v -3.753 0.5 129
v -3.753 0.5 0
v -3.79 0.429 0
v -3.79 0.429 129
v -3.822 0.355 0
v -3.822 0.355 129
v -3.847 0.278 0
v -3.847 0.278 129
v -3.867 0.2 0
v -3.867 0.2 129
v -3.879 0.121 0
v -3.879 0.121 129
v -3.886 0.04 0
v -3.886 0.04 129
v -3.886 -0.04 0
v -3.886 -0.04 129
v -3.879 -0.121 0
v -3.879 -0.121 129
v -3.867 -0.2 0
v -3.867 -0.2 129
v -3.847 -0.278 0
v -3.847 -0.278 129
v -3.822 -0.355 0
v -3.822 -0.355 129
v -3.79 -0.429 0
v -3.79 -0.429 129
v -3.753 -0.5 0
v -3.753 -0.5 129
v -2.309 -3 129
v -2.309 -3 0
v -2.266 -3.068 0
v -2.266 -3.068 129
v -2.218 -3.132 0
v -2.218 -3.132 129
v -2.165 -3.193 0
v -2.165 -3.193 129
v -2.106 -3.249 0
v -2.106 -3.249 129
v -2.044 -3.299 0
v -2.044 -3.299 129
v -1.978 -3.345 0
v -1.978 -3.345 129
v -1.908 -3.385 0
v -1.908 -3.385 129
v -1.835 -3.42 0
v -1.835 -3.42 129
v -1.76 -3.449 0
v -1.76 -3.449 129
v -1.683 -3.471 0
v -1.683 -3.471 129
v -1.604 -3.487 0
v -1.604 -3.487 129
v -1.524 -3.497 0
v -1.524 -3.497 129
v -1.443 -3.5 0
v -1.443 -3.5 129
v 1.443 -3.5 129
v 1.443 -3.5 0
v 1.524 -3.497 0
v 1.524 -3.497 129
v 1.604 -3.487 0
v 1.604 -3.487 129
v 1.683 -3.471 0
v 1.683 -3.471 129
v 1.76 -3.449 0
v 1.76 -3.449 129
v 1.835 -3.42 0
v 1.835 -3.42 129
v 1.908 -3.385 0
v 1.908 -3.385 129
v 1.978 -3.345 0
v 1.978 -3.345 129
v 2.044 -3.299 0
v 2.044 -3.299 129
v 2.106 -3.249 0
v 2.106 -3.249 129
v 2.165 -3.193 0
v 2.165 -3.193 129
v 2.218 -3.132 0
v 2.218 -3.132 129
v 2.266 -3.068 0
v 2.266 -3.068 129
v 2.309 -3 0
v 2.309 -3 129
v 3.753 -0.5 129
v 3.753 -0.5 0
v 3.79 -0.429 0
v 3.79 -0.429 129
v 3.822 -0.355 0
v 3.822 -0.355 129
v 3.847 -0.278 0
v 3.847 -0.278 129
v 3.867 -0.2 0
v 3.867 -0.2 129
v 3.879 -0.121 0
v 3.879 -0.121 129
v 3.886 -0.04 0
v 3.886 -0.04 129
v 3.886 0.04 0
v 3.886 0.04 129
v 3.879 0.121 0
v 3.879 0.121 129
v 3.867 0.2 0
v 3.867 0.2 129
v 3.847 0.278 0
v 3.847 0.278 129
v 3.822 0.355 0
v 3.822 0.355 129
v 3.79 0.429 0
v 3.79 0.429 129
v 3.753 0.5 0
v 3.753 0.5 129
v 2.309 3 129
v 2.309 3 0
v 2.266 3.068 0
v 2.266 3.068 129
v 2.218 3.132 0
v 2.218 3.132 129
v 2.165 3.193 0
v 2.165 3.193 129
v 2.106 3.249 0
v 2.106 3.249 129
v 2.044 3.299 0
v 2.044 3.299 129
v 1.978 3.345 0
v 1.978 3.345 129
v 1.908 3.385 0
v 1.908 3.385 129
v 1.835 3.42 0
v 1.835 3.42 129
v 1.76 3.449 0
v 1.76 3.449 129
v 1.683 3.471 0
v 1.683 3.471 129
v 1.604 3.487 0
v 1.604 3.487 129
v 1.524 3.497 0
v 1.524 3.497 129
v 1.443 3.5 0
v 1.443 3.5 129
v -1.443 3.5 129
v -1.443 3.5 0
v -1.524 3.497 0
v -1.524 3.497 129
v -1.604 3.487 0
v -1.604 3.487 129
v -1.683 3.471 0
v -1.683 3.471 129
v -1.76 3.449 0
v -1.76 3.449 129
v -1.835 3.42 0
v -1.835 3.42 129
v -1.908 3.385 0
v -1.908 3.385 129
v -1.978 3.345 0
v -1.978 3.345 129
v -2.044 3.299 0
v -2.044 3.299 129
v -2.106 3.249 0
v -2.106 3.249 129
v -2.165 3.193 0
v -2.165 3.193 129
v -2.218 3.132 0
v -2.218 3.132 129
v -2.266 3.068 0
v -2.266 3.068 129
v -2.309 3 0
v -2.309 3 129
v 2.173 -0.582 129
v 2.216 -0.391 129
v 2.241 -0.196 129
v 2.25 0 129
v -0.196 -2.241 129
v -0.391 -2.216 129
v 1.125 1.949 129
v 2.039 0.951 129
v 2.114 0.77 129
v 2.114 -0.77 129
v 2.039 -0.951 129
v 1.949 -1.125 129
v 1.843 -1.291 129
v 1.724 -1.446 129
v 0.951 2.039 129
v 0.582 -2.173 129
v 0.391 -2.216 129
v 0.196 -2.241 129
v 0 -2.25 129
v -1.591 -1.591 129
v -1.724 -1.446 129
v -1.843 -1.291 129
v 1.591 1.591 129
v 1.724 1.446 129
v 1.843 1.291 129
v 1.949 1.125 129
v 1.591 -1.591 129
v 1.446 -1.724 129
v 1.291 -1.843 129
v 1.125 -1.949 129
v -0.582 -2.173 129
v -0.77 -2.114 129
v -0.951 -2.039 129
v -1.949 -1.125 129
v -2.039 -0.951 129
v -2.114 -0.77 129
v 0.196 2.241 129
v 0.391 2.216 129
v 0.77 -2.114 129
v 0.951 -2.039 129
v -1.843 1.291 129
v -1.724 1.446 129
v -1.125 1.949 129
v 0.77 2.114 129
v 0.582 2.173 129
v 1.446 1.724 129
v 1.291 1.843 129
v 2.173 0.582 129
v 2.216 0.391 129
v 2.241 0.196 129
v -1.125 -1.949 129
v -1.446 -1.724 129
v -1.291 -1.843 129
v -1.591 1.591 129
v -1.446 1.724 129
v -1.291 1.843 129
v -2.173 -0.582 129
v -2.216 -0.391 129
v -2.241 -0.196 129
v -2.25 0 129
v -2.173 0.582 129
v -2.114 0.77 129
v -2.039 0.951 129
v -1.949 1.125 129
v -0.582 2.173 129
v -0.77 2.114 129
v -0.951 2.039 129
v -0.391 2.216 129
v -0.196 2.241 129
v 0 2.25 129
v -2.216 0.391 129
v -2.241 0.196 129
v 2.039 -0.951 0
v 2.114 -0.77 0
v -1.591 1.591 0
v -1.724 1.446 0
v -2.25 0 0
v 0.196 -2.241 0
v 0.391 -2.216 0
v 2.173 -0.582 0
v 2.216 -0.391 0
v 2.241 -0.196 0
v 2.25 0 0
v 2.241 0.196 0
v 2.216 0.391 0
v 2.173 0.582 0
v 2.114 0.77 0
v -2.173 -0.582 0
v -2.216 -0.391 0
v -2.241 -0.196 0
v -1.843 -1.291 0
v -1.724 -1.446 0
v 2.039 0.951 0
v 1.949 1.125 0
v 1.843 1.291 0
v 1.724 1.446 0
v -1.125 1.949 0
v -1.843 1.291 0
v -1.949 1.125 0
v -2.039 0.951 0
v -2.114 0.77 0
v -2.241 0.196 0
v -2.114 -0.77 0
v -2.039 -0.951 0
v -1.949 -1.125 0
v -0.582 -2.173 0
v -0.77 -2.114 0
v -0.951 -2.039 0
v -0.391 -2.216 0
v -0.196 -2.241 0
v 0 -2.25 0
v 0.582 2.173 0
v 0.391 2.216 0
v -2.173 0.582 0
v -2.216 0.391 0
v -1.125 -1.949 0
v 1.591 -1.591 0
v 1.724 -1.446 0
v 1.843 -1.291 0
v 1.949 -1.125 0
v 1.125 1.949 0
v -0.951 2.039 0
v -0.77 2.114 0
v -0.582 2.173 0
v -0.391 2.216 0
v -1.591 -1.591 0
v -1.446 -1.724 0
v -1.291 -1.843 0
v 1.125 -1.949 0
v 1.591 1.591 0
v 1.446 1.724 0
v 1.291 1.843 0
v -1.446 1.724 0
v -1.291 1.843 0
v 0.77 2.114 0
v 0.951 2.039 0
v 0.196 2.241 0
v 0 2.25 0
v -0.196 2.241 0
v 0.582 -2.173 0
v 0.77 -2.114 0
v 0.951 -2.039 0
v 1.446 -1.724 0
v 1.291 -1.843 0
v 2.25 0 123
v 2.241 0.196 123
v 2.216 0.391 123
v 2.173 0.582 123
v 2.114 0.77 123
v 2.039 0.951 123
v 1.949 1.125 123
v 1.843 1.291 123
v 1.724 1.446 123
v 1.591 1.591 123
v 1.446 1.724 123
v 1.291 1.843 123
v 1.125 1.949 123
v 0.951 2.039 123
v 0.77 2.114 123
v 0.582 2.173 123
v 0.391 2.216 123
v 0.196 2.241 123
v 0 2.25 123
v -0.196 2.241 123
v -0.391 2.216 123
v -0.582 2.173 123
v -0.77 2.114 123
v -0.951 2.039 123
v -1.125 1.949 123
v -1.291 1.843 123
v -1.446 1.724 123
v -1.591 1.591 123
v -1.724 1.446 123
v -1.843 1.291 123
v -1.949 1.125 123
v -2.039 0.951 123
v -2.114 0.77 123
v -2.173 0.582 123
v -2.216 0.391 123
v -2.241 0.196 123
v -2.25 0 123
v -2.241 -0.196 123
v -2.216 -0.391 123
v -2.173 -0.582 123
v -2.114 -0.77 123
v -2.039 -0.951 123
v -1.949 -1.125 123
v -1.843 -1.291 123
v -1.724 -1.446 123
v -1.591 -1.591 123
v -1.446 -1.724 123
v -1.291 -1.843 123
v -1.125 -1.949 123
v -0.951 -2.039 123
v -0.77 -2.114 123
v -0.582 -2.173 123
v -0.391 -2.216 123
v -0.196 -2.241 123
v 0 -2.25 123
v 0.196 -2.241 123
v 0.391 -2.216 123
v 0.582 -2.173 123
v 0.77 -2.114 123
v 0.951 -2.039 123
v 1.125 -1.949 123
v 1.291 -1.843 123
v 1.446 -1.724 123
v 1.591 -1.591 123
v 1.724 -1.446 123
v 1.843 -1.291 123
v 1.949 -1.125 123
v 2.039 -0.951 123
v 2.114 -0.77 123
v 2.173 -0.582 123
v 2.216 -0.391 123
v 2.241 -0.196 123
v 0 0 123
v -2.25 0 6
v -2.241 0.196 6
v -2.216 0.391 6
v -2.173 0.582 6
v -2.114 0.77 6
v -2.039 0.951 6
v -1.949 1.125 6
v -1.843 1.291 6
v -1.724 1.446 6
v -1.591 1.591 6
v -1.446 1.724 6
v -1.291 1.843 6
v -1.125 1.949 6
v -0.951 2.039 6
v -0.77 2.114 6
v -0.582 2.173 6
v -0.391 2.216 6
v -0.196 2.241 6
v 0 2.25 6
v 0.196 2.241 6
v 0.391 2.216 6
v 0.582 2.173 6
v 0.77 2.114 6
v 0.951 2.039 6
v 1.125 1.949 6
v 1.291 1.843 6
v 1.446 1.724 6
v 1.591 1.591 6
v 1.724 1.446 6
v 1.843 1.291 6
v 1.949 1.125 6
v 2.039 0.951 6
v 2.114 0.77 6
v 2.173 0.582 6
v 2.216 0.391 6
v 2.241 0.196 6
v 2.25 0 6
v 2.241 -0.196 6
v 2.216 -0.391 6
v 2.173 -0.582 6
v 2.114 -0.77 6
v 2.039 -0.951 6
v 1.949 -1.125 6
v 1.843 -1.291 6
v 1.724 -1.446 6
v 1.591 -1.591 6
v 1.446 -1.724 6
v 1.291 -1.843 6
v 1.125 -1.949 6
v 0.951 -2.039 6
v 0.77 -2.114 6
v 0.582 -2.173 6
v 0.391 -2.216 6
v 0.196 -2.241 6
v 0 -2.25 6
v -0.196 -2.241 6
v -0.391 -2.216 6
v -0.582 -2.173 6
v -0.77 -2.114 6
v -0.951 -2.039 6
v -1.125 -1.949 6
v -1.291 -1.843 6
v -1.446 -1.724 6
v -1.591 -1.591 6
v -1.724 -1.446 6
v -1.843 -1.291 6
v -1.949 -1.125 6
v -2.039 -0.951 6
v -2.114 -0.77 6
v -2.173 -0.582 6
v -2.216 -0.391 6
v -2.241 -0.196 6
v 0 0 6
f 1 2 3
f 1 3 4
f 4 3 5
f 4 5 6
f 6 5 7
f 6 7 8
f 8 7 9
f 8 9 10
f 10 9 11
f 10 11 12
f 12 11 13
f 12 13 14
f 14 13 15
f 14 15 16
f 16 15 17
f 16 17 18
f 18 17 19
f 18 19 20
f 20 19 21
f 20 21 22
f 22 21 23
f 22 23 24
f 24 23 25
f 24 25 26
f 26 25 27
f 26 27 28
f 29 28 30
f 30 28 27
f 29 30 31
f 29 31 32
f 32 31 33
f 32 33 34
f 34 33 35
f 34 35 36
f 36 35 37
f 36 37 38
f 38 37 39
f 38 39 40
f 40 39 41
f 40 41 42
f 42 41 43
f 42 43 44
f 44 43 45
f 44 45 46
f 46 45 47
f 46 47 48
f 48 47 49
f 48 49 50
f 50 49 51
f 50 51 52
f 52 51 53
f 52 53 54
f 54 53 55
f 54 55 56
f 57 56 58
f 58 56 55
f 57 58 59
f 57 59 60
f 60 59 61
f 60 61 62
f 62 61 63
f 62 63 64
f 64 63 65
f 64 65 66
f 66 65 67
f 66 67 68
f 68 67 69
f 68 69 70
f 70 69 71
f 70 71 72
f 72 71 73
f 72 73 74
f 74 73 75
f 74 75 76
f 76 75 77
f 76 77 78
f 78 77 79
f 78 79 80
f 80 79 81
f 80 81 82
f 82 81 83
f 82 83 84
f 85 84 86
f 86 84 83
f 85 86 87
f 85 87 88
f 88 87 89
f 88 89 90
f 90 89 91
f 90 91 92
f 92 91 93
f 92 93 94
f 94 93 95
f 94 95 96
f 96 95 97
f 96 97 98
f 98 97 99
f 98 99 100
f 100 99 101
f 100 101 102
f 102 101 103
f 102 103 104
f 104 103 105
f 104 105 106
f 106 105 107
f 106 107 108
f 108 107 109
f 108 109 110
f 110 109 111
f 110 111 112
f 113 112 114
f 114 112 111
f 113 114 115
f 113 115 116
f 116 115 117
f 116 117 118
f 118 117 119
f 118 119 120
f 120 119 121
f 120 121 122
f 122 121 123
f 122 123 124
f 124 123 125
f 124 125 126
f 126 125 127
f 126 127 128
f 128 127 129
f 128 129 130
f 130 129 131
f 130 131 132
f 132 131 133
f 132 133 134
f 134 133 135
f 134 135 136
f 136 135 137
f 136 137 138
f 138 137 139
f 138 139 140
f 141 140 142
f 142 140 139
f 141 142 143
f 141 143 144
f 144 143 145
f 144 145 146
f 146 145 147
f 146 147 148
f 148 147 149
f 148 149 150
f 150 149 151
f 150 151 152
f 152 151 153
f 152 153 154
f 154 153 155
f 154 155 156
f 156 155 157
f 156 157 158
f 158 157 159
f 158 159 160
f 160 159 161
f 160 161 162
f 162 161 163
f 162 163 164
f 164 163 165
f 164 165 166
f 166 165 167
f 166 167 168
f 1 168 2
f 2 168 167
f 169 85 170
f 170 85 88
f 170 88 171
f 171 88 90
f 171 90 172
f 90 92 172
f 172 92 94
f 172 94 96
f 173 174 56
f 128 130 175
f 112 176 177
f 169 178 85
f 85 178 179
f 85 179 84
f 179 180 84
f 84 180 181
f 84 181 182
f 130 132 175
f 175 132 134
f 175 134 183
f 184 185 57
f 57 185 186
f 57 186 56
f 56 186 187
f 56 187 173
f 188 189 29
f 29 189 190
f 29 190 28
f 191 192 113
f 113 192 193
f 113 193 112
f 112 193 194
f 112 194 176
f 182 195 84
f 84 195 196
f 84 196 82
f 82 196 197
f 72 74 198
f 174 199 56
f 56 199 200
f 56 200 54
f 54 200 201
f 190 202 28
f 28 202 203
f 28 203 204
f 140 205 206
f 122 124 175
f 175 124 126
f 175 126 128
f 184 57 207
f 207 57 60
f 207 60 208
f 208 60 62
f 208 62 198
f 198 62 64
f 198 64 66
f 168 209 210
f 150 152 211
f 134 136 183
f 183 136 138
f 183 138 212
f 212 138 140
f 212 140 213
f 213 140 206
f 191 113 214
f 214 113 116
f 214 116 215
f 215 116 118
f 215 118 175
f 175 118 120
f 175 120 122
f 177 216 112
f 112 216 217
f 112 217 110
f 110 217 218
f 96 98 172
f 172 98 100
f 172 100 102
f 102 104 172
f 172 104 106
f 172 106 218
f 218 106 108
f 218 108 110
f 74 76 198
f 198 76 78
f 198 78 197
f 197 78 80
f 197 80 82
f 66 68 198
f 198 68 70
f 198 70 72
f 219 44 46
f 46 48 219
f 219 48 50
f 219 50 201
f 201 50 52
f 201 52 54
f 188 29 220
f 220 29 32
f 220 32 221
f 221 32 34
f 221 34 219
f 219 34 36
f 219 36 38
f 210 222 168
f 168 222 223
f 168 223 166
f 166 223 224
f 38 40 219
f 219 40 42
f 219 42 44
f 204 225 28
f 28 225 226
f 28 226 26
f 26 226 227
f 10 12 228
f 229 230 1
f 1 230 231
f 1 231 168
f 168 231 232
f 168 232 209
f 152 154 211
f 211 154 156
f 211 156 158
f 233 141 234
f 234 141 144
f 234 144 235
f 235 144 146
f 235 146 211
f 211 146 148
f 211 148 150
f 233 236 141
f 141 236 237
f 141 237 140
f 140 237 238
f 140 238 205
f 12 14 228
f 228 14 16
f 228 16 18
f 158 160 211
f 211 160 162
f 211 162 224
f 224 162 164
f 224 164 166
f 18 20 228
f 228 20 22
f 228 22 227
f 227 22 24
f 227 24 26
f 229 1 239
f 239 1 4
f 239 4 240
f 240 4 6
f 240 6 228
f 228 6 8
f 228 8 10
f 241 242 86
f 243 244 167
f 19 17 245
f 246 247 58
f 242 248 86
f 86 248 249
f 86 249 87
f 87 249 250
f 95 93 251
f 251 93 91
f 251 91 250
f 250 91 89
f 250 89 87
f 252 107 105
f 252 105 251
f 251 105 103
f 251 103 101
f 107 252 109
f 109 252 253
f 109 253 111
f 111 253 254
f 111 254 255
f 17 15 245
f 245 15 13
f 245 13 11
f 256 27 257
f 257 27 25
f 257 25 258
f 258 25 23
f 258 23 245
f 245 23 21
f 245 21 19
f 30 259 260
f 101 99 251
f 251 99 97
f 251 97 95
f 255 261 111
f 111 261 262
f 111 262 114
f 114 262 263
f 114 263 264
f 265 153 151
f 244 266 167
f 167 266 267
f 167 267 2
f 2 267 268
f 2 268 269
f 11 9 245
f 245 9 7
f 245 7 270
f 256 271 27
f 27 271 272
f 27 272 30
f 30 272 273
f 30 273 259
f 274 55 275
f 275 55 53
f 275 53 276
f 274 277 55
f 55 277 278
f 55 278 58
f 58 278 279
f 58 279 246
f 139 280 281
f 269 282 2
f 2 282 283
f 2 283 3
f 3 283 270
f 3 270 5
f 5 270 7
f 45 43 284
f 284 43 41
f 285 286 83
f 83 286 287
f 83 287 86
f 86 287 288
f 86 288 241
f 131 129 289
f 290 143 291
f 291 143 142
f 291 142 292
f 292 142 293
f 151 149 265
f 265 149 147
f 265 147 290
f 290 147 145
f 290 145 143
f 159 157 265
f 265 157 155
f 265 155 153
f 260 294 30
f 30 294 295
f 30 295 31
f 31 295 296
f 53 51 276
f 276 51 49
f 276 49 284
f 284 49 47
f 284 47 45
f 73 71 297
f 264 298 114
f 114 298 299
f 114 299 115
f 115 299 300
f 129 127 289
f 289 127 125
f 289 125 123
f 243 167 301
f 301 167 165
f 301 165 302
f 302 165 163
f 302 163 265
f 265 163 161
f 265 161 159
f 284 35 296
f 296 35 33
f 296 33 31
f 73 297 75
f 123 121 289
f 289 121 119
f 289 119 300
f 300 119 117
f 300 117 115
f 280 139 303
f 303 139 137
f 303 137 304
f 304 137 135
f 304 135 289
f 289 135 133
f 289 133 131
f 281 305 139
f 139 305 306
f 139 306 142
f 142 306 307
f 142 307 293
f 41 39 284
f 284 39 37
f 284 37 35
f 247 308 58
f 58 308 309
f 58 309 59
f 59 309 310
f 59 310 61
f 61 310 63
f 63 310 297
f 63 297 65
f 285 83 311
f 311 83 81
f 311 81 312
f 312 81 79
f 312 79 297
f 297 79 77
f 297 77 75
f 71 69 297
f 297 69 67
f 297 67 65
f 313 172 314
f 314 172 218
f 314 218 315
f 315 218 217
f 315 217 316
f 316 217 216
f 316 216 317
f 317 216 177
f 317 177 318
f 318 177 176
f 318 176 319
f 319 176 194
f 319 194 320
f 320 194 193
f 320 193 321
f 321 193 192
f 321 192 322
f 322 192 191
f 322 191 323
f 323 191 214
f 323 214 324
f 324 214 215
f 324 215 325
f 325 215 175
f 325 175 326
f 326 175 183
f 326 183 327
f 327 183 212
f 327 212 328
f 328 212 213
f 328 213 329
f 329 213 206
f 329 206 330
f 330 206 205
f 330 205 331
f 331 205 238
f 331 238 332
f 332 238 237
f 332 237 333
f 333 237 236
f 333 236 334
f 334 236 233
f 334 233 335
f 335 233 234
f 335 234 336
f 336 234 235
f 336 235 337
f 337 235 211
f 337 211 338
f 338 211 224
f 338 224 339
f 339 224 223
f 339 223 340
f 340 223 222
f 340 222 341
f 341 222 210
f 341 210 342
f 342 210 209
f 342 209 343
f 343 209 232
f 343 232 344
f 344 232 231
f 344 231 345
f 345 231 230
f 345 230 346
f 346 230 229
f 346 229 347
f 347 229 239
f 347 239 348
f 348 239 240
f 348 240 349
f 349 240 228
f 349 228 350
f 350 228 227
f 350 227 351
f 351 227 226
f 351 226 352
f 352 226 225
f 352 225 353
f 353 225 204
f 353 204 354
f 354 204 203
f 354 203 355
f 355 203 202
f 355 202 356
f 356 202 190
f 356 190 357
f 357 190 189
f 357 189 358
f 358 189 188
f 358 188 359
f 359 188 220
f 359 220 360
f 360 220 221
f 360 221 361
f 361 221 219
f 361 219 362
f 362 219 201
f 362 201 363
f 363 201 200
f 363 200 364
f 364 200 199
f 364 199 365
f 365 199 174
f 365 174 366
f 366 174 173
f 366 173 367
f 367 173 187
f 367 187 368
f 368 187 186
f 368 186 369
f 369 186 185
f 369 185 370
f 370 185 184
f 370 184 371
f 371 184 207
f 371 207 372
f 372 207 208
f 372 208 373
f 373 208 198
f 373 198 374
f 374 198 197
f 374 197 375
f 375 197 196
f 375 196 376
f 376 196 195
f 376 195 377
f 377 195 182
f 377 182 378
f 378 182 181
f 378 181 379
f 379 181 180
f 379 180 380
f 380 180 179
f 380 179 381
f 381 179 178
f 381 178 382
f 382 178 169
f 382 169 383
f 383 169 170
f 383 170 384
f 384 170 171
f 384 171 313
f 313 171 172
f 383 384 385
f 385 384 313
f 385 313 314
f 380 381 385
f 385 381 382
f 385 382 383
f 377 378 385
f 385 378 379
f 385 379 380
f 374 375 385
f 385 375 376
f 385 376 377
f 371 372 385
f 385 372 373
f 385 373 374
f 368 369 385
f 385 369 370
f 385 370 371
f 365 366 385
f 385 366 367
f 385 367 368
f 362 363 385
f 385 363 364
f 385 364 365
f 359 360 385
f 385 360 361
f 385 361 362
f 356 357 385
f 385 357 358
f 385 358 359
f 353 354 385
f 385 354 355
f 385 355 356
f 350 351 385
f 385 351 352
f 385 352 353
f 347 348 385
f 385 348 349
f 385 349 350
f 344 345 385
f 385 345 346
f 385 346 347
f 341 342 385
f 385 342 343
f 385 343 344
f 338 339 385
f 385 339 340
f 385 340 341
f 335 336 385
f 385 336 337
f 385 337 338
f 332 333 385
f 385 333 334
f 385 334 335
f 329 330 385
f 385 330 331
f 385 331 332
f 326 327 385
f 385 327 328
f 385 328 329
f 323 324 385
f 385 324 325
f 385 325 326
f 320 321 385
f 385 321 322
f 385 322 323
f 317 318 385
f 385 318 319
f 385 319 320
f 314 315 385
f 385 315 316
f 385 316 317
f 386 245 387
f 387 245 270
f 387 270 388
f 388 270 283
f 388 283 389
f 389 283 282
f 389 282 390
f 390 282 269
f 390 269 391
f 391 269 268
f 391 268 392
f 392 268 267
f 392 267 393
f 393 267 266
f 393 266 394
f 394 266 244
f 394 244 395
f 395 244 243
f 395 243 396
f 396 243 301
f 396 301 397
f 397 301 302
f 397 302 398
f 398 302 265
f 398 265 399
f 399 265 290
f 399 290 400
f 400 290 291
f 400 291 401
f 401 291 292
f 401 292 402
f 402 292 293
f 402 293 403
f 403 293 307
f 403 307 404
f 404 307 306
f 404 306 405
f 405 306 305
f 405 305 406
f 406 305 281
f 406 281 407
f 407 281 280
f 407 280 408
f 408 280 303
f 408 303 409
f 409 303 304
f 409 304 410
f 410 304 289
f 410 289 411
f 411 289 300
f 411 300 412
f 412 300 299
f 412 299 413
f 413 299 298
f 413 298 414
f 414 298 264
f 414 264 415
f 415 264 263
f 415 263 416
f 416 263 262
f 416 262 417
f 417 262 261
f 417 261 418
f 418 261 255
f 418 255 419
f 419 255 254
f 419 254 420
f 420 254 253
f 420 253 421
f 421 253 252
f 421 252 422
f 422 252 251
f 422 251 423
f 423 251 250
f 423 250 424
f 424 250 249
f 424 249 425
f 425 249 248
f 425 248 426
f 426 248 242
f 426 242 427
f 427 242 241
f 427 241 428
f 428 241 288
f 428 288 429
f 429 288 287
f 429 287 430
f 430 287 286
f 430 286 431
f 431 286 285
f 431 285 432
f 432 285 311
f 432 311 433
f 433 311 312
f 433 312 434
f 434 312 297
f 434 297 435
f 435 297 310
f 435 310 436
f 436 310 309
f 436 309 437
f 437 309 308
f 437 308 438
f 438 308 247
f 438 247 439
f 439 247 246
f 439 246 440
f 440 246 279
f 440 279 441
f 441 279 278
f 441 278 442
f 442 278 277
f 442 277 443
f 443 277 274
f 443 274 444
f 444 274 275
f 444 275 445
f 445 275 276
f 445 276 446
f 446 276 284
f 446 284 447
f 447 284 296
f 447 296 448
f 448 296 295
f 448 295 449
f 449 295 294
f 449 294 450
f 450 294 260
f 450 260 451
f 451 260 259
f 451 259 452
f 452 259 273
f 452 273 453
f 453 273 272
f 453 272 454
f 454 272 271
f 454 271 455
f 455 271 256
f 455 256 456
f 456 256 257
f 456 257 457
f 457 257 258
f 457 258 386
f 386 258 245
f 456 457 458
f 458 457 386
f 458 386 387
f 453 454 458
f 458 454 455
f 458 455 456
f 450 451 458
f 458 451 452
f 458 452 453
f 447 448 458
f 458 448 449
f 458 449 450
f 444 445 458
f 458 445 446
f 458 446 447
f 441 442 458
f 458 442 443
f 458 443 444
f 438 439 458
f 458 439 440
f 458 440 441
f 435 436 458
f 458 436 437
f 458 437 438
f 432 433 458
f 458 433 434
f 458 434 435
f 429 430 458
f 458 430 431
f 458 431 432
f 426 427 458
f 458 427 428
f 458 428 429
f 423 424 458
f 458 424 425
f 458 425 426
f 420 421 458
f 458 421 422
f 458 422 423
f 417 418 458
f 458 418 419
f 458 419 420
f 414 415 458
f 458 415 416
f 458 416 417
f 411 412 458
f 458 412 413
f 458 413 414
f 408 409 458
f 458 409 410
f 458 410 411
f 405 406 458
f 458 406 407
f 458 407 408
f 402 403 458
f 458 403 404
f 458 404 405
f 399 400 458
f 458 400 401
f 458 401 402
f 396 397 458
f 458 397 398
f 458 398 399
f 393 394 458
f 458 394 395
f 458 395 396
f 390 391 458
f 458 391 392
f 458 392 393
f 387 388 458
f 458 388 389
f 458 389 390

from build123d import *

# Parameters (mm, degrees)
EXTRUDE_1_DEPTH     = 129
SKETCH_2_R          = 2.25
CUT_EXTRUDE_1_DEPTH = 6
CUT_EXTRUDE_START   = -6
SKETCH_3_R          = 2.25
CUT_EXTRUDE_2_DEPTH = 6


with BuildPart() as part:
    # Эскиз1 → Бобышка-Вытянуть1 (new body)
    with BuildSketch(Plane.XY):
        with BuildLine():
            Line((3.75277675, 0.5), (2.309401077, 3))
            ThreePointArc((2.309401077, 3), (1.943375673, 3.366025404), (1.443375673, 3.5))
            Line((1.443375673, 3.5), (-1.443375673, 3.5))
            ThreePointArc((-1.443375673, 3.5), (-1.943375673, 3.366025404), (-2.309401077, 3))
            Line((-2.309401077, 3), (-3.75277675, 0.5))
            ThreePointArc((-3.75277675, 0.5), (-3.886751346, 0), (-3.75277675, -0.5))
            Line((-3.75277675, -0.5), (-2.309401077, -3))
            ThreePointArc((-2.309401077, -3), (-1.943375673, -3.366025404), (-1.443375673, -3.5))
            Line((-1.443375673, -3.5), (1.443375673, -3.5))
            ThreePointArc((1.443375673, -3.5), (1.943375673, -3.366025404), (2.309401077, -3))
            Line((2.309401077, -3), (3.75277675, -0.5))
            ThreePointArc((3.75277675, -0.5), (3.886751346, 0), (3.75277675, 0.5))
        make_face()
    extrude(amount=EXTRUDE_1_DEPTH)

    # Эскиз2 → Вырез-Вытянуть1 (cut)
    with BuildSketch(Plane.XY.offset(129)):
        Circle(SKETCH_2_R)
    extrude(amount=-CUT_EXTRUDE_1_DEPTH, mode=Mode.SUBTRACT)

    # Эскиз3 → Вырез-Вытянуть2 (cut)
    with BuildSketch(Plane(origin=(0, 0, 0), x_dir=(-1, 0, 0), z_dir=(0, 0, -1)).offset(CUT_EXTRUDE_START)):
        with Locations(Location((0, 0, 0), (0, 0, 180))):
            Circle(SKETCH_3_R)
    extrude(amount=CUT_EXTRUDE_2_DEPTH, mode=Mode.SUBTRACT)


solid = part.part
